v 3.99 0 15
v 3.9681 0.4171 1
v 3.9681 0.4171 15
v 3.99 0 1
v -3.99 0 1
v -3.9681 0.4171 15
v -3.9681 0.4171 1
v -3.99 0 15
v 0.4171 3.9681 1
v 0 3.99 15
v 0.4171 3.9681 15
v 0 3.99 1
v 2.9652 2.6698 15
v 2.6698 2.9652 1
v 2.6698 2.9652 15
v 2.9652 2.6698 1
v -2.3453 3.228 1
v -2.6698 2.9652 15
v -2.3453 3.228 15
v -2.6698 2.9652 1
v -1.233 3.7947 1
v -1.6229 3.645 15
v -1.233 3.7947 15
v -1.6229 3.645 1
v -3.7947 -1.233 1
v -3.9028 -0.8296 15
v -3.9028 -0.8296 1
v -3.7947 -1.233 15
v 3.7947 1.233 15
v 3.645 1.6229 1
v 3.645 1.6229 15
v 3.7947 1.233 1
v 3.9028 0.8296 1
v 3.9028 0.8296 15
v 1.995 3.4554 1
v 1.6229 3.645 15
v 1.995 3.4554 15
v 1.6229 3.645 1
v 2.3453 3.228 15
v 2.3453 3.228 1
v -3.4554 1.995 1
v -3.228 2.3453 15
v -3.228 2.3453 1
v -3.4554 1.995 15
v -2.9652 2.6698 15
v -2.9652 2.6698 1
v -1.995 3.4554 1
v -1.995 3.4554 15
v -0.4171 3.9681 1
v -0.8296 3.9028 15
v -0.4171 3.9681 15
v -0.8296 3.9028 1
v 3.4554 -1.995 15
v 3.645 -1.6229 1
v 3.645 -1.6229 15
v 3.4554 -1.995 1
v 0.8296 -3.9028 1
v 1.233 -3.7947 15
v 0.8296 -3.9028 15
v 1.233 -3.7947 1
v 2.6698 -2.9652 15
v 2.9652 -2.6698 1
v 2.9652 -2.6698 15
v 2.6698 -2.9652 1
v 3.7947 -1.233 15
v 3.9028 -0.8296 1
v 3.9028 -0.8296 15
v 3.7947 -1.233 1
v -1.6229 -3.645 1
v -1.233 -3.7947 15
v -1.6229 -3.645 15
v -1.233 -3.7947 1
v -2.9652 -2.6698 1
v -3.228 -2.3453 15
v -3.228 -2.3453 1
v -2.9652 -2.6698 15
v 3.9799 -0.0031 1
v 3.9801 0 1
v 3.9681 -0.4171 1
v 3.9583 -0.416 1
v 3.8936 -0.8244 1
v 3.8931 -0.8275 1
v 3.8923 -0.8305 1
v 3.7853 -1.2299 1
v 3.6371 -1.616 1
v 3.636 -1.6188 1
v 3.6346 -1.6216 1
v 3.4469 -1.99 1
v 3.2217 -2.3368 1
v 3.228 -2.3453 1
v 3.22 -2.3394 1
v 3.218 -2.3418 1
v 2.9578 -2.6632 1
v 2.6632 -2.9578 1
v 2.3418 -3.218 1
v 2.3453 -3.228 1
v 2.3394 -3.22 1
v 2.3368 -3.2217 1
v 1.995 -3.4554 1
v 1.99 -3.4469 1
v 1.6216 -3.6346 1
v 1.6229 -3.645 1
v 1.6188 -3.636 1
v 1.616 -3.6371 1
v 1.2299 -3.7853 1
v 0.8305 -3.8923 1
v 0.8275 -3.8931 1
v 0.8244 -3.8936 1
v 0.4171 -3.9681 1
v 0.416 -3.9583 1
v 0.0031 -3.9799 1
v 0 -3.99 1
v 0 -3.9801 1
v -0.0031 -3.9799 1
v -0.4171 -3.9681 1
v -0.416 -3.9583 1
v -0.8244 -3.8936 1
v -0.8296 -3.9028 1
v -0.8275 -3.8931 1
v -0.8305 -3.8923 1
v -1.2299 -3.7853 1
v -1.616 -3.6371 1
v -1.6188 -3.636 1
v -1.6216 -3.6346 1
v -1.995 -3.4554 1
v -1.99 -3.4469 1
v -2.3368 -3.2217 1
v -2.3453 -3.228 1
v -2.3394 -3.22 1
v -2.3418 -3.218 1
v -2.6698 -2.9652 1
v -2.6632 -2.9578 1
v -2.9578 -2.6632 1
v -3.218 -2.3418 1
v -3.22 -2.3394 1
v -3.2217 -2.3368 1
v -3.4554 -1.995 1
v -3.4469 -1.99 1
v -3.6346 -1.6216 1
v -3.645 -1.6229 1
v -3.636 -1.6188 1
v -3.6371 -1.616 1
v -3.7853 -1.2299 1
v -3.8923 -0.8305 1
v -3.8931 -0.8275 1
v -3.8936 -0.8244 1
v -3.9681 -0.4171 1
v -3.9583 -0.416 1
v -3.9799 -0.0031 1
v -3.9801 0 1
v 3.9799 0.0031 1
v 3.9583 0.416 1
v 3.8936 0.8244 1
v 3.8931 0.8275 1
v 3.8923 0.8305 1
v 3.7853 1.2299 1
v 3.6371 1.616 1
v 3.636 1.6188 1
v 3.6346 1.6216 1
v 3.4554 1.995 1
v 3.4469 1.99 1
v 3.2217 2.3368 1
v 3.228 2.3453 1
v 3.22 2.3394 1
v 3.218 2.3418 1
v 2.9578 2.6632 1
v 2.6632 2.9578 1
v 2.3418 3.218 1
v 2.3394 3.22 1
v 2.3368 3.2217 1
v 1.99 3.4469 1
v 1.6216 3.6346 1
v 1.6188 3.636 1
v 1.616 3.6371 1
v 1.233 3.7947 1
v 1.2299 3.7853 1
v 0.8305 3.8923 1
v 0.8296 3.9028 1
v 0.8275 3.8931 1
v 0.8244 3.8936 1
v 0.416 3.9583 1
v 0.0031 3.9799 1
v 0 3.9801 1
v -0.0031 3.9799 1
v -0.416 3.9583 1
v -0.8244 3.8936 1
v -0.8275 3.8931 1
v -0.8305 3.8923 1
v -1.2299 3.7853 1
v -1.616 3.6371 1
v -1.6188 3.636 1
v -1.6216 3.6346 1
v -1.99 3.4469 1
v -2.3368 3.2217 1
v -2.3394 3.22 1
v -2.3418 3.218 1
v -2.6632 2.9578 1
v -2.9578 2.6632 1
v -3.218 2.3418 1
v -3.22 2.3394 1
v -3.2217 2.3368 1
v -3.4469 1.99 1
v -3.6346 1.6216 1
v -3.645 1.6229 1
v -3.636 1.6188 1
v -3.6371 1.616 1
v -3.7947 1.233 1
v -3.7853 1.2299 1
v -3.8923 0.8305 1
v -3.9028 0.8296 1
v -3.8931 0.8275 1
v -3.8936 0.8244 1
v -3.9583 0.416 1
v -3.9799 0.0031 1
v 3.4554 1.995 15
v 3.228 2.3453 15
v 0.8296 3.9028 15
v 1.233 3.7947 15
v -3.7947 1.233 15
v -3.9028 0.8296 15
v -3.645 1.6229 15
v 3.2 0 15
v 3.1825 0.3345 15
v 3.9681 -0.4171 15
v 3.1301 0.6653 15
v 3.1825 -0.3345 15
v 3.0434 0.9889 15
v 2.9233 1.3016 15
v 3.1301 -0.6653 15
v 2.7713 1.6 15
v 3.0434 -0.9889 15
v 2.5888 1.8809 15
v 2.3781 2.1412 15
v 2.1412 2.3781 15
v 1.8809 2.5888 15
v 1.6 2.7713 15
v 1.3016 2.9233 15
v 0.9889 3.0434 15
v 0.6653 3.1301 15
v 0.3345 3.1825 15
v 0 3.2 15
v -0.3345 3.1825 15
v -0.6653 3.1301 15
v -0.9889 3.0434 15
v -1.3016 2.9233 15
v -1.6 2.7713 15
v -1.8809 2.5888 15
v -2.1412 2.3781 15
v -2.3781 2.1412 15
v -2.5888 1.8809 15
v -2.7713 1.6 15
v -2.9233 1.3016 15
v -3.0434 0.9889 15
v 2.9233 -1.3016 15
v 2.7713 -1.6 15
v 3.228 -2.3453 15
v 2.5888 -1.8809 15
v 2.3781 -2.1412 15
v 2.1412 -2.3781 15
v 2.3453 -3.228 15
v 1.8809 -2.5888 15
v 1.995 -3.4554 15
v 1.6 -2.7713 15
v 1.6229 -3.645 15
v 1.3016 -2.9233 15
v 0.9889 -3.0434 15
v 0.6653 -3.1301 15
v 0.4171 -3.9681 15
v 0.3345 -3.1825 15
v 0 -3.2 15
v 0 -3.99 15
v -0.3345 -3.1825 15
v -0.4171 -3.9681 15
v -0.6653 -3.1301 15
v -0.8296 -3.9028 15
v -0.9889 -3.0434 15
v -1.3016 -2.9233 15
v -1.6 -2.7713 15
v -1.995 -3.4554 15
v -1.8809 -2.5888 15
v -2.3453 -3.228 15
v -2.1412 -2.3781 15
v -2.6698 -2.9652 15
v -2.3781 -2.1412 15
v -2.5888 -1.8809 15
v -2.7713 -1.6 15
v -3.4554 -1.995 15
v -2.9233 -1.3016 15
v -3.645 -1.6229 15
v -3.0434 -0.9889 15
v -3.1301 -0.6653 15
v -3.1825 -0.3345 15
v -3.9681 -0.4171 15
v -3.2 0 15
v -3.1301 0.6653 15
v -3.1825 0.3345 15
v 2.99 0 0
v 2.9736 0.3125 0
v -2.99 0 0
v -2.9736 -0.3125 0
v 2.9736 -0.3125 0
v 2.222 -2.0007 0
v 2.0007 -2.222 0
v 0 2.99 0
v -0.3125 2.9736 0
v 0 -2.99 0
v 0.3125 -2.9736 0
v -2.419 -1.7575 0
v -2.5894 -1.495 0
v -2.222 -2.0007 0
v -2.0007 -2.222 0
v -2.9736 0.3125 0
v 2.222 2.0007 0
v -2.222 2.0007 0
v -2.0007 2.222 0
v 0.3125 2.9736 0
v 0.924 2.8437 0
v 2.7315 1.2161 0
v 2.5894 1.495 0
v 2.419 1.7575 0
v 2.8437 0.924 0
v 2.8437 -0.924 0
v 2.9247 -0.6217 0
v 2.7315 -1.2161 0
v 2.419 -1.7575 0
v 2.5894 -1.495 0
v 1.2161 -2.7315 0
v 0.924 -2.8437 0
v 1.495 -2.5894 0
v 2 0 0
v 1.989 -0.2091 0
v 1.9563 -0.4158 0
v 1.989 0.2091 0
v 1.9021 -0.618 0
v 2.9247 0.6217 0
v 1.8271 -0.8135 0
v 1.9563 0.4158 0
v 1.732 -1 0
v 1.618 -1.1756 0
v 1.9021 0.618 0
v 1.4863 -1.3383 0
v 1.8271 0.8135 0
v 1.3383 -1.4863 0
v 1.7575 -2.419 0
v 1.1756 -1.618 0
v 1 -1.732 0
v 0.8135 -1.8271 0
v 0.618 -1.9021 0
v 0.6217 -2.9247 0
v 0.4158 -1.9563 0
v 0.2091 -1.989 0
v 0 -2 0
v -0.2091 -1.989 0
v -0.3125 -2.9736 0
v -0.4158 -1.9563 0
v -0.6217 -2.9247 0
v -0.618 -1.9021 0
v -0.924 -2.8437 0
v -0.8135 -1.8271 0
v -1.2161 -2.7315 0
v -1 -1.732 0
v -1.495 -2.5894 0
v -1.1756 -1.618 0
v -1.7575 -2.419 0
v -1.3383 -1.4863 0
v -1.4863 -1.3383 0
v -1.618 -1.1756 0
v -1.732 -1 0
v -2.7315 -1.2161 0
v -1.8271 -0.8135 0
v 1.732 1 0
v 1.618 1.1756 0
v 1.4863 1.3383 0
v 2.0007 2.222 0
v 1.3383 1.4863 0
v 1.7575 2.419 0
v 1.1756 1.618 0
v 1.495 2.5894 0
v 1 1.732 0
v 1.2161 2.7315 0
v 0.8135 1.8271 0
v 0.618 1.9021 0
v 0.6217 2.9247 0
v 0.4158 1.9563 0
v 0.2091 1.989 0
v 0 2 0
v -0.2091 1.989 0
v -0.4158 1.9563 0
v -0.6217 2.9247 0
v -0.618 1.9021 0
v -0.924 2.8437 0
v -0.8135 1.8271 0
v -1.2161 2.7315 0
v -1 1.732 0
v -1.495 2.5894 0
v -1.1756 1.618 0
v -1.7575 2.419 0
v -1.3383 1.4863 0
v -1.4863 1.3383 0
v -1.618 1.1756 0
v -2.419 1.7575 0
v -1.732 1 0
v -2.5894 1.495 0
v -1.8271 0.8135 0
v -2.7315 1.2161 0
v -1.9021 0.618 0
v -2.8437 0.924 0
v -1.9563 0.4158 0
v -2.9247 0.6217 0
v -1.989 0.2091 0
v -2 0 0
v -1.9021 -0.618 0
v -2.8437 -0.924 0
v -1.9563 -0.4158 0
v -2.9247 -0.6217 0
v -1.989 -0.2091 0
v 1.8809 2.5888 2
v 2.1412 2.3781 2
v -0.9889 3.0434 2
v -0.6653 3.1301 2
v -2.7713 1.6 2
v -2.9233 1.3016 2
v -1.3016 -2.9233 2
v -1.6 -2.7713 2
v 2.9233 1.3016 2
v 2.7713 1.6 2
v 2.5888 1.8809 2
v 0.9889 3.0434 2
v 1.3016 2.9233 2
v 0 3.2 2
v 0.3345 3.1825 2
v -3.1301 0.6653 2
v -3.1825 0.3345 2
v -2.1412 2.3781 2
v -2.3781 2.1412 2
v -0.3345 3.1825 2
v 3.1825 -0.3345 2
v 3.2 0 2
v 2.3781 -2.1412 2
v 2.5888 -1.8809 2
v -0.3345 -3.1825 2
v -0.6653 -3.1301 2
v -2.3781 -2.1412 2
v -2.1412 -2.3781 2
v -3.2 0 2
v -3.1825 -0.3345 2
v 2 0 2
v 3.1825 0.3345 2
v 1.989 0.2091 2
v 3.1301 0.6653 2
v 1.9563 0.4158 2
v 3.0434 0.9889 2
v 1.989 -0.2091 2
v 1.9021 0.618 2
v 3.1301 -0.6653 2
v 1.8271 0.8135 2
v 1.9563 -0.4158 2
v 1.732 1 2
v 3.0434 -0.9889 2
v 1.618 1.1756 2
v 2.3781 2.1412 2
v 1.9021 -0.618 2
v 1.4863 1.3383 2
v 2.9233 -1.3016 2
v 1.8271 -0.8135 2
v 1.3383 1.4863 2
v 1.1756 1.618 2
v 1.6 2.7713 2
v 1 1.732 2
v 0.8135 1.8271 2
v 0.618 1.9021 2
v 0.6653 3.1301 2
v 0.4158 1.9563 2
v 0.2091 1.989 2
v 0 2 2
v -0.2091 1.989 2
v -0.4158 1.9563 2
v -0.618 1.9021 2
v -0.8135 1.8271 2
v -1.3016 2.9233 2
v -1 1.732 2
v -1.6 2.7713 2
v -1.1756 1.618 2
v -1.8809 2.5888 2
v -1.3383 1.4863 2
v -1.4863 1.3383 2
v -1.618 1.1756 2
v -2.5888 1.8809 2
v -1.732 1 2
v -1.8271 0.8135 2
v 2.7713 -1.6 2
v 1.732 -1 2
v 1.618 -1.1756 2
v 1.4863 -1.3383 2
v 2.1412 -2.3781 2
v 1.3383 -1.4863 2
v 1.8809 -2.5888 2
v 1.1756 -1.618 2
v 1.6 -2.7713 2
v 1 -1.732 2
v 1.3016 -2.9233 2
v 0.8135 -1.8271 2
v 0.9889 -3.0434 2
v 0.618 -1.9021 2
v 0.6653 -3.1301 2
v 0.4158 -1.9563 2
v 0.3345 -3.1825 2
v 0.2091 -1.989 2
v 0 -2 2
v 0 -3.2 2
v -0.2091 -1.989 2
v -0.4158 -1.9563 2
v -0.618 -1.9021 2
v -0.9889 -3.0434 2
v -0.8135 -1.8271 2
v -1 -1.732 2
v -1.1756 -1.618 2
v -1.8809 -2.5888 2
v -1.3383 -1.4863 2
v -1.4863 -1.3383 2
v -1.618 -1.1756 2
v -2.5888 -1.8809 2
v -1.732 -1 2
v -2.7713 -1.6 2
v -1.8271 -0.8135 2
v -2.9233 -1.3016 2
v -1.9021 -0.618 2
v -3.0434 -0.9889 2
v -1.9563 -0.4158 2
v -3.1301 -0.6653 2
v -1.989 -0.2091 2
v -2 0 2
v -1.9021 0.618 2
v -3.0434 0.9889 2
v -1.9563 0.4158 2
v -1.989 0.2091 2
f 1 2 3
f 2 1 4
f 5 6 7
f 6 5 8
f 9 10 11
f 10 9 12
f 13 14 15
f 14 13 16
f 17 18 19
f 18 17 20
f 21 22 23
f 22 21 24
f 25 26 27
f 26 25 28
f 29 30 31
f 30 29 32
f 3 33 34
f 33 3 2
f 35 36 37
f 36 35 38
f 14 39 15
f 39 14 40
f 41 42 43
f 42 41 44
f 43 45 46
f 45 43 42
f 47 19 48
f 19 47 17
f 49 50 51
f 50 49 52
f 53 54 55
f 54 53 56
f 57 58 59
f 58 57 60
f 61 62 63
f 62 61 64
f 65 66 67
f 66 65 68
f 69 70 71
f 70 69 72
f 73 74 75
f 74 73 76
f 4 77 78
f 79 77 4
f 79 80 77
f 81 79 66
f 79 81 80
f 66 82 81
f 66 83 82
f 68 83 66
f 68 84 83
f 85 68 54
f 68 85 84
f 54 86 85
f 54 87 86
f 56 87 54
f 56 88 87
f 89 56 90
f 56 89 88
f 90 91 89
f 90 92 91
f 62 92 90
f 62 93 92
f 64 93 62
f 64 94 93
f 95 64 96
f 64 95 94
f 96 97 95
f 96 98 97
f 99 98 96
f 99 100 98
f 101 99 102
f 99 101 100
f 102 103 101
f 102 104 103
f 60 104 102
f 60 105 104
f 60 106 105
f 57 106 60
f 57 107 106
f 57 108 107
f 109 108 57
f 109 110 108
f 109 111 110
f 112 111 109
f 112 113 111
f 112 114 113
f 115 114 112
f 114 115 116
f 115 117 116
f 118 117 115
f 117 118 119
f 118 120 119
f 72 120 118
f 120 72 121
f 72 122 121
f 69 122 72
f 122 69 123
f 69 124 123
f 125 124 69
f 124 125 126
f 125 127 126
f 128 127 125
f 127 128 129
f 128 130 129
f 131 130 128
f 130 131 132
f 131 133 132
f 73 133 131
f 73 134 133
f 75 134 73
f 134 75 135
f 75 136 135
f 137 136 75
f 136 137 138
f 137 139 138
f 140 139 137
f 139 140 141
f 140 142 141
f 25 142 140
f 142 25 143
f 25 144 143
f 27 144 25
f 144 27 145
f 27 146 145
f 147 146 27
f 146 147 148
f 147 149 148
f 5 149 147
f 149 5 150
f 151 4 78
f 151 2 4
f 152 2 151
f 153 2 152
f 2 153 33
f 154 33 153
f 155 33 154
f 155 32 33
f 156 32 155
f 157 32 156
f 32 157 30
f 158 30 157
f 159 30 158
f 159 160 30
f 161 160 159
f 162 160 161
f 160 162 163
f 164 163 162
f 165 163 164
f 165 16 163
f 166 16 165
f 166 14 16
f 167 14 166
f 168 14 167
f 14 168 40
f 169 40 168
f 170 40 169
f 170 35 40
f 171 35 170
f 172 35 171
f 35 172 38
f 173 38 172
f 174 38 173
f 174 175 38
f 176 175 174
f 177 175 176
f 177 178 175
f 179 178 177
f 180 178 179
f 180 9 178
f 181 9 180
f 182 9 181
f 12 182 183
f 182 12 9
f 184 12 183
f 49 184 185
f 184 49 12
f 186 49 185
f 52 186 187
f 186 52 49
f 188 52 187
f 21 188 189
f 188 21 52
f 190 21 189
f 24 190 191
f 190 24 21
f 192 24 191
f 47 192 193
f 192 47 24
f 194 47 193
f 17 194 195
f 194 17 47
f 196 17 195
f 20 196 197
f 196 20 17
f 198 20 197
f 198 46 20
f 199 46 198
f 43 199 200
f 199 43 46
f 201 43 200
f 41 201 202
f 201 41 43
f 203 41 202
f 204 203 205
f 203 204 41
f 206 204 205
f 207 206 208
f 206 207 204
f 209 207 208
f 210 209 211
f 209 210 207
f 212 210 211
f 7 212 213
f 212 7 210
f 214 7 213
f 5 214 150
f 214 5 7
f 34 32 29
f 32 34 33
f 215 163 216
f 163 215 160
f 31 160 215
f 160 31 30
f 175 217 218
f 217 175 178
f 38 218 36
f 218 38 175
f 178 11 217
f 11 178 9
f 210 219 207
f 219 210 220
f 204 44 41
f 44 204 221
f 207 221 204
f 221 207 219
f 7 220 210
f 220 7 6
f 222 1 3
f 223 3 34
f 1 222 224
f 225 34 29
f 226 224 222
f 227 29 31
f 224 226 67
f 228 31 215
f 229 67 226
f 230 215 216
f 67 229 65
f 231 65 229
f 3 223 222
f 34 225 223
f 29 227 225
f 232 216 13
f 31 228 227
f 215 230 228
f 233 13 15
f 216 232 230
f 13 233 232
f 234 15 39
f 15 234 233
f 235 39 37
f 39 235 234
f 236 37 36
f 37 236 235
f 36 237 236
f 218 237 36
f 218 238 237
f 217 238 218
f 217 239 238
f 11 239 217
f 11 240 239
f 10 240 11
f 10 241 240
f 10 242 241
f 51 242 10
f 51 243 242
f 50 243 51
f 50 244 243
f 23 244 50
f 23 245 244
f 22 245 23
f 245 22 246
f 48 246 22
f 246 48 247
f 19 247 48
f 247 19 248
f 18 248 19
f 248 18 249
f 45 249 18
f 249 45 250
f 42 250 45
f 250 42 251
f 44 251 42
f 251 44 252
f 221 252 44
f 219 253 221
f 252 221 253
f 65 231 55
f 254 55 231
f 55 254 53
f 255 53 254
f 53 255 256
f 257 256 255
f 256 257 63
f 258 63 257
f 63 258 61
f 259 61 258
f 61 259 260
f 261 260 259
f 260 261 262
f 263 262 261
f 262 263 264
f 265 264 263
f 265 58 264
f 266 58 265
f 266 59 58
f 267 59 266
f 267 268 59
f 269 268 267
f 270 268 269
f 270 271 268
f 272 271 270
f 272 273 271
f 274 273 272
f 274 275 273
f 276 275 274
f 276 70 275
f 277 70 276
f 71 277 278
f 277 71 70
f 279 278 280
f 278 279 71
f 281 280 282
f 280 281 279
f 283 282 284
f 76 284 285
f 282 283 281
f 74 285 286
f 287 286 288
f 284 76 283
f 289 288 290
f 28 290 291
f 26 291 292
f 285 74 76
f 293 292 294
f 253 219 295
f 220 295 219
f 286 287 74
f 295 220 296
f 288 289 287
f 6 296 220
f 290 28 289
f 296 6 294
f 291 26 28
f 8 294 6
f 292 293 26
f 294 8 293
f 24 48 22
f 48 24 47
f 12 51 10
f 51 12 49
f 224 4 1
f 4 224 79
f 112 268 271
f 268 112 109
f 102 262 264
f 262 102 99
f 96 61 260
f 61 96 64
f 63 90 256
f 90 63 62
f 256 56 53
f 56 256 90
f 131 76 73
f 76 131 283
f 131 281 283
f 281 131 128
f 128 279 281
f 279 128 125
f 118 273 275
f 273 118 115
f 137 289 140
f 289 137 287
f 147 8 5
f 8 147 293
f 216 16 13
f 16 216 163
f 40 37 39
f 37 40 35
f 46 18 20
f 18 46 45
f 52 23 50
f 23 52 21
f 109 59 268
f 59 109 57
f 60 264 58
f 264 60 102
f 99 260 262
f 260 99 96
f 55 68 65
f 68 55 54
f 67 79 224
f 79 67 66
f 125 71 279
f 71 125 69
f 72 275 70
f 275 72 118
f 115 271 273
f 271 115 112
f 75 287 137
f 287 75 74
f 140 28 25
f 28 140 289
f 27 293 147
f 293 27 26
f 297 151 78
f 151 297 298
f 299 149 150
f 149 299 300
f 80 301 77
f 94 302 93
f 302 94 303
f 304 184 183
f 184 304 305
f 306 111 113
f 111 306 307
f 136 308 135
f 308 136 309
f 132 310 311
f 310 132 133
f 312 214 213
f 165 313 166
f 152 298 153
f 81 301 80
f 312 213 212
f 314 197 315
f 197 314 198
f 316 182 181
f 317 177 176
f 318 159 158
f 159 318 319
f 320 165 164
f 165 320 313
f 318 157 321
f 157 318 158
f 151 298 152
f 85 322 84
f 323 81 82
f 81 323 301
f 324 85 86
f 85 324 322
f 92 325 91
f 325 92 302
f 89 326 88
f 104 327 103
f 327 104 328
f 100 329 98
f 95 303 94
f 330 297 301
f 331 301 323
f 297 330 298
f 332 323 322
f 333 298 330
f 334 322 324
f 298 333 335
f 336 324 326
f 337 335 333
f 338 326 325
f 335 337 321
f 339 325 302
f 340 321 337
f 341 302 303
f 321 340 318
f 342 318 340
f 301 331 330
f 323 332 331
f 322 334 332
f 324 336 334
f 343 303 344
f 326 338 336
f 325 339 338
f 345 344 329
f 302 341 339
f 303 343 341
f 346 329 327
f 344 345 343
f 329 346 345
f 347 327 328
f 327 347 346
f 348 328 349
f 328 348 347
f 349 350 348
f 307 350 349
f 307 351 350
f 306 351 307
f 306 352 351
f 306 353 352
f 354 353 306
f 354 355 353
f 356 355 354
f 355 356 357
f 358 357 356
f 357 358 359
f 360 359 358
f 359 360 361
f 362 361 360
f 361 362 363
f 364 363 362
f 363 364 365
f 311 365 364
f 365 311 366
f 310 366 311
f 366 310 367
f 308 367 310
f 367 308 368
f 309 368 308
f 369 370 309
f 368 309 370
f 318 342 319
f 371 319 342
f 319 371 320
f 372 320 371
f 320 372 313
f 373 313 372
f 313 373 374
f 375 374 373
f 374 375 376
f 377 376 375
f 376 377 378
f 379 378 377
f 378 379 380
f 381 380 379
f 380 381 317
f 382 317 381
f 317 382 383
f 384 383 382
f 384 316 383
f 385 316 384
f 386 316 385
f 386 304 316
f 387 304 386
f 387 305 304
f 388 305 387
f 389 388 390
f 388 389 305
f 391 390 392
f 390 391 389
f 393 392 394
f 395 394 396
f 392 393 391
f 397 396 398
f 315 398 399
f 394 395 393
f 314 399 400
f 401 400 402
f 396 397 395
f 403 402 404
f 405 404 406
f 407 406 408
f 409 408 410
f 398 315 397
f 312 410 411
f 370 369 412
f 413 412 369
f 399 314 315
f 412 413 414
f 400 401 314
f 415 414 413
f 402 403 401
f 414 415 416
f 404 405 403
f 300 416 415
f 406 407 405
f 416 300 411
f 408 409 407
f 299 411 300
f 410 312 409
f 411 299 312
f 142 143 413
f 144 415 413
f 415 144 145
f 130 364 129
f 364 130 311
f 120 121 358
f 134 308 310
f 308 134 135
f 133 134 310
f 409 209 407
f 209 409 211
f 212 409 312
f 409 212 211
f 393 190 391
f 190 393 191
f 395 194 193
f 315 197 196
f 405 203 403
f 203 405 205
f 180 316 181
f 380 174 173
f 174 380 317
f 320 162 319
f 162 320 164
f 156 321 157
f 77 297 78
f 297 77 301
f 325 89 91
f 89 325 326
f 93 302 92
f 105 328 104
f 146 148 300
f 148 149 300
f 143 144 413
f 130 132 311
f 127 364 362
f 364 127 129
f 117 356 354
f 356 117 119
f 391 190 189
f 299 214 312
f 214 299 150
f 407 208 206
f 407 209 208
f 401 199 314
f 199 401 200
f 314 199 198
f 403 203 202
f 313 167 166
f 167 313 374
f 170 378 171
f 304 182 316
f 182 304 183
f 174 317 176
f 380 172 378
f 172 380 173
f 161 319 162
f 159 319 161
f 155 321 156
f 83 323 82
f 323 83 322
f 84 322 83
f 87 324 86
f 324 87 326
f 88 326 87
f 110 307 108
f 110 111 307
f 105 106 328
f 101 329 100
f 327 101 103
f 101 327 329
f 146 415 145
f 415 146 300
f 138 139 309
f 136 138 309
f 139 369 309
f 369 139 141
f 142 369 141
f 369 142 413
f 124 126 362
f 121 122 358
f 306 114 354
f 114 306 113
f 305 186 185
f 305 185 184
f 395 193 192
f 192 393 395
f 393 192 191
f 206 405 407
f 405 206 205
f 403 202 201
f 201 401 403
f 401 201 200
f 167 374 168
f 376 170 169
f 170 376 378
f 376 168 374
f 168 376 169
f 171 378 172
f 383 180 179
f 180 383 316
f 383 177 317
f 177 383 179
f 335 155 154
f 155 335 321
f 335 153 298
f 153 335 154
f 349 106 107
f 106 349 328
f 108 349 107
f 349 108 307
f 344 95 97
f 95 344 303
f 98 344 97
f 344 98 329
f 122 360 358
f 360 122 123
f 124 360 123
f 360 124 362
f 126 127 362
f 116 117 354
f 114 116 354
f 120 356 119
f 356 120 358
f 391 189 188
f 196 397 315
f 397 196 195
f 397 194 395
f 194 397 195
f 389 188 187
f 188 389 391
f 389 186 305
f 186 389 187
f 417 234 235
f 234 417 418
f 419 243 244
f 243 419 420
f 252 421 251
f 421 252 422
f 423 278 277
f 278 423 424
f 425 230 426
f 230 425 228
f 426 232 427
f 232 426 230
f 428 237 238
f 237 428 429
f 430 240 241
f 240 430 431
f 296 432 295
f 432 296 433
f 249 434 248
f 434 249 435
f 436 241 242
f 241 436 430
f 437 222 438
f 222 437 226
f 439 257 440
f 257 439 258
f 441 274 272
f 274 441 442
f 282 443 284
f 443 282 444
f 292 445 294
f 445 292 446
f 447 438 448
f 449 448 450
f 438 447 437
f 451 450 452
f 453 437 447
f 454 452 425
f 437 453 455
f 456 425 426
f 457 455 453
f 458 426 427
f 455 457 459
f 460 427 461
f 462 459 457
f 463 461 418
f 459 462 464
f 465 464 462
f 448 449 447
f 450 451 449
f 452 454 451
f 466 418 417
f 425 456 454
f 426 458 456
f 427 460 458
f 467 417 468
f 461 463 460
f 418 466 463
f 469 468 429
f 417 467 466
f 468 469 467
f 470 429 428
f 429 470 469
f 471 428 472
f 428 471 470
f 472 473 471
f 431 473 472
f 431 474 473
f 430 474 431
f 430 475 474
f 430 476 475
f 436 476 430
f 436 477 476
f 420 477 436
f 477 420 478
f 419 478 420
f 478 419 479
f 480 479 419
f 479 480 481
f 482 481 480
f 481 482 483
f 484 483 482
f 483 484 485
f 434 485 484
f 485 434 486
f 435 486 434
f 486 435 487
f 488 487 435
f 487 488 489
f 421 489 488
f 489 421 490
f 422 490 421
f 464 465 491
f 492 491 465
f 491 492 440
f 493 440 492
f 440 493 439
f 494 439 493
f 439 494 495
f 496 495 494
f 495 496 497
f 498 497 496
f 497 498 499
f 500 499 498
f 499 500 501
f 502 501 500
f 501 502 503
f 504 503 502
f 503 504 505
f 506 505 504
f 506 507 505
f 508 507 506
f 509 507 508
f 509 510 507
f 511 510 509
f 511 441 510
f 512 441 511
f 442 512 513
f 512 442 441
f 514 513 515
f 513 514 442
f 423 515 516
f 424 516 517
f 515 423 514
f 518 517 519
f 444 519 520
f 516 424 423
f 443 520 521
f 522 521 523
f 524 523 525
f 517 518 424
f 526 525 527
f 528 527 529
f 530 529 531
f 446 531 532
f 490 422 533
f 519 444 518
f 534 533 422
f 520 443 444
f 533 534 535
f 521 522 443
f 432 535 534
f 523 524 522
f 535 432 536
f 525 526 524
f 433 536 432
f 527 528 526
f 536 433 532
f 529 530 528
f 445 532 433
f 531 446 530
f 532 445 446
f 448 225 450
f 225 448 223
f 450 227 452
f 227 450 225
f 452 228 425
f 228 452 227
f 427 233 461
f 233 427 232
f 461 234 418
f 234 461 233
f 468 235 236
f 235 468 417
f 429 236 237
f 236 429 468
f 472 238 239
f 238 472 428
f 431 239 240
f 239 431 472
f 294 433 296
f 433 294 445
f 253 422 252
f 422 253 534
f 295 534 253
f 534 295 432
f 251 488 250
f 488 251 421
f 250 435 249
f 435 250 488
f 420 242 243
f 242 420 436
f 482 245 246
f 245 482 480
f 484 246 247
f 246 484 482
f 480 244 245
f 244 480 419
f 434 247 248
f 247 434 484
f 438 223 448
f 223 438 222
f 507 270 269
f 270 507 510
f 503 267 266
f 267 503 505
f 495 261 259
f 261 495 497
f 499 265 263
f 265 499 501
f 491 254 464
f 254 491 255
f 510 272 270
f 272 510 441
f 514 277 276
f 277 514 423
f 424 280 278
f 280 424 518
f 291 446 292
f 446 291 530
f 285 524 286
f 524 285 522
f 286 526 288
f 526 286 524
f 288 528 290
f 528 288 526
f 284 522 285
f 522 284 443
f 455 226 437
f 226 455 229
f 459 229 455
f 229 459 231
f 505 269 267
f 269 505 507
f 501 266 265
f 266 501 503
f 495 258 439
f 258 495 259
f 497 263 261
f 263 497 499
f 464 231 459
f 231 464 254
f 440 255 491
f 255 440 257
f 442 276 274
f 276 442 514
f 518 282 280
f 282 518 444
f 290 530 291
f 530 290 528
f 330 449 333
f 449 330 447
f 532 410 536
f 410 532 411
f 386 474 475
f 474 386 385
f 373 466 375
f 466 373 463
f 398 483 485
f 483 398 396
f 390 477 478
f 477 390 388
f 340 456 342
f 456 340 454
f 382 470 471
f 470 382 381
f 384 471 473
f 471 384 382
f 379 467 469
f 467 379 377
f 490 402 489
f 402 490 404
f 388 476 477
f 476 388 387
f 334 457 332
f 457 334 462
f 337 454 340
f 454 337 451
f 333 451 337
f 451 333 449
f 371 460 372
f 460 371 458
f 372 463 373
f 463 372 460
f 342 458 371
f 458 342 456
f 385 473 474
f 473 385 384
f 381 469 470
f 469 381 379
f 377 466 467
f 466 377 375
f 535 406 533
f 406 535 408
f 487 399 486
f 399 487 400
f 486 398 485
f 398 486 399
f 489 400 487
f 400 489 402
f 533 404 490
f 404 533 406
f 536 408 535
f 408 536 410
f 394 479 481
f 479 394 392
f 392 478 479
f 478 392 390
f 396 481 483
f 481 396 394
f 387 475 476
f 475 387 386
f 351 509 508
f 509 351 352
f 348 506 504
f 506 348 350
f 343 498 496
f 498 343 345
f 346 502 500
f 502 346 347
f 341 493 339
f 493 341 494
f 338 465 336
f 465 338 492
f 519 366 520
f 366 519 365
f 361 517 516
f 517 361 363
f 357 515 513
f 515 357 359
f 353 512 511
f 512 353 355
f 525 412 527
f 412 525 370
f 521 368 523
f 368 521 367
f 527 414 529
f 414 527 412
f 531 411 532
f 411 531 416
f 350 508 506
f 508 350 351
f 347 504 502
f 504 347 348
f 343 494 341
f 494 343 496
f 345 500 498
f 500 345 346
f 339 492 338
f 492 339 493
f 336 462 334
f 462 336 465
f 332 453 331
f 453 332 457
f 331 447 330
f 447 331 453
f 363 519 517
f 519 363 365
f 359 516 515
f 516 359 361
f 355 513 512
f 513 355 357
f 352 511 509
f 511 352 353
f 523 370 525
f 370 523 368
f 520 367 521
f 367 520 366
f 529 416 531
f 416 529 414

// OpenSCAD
//print with no infill so that it only prints perimeters (and the bottom)

bottom_t=2;
sidewall=.79;
rod_r=6/2+.2; //.2 too small .4 too big
cap_l=15;
ep=0.01;
$fn=60;
m4_tap=4;

difference()
{
    union()
    {
        translate([0,0,1])cylinder(r=rod_r+sidewall,h=cap_l-1);
        cylinder(r1=rod_r+sidewall-1,r2=rod_r+sidewall,h=1+ep);
    }
    translate([0,0,bottom_t])cylinder(r=rod_r,h=cap_l);
    cylinder(r=m4_tap/2,h=cap_l*4,center=true);
}
